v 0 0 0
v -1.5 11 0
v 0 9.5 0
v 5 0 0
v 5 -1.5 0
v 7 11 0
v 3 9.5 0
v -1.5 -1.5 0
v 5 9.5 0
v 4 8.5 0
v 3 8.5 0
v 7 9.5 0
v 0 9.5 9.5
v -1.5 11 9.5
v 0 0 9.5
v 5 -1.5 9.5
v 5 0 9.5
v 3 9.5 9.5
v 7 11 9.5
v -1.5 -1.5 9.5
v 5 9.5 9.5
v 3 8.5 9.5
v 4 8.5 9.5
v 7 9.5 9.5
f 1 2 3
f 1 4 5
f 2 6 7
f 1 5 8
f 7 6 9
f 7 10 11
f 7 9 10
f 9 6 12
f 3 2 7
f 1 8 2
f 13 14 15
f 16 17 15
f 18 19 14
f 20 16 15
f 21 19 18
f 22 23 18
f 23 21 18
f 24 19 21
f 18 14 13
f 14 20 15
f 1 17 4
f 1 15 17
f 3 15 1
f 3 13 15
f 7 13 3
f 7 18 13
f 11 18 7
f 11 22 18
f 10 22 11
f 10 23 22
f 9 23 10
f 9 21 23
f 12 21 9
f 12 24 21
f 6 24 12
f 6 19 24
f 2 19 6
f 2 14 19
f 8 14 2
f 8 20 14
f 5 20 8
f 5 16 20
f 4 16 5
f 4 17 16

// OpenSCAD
clipThickness = 1.5;
clipWidth = 9.5;


clipPadding = 3;
clipEdgeBottom = 1;
clipEdgeSlope = 1;
clipEdgeOver = 2;
clipEdgeThickness = 1;

clipLength = clipPadding+clipEdgeBottom+clipEdgeSlope+clipEdgeOver;
clipTopLength = clipPadding+clipEdgeBottom+clipEdgeSlope;

clipHeight = 9.5;




linear_extrude(height = clipWidth)
  polygon(points = 
    [
      [0,0],[clipTopLength,0],
      [clipTopLength,-clipThickness],[-clipThickness,-clipThickness],
      [-clipThickness,clipThickness+clipHeight],[clipLength, clipThickness+clipHeight],
      [clipLength,clipHeight],
      // the little edge
      [clipLength-clipEdgeOver,clipHeight],
      [clipLength-clipEdgeOver-clipEdgeSlope,clipHeight-clipEdgeThickness],
      [clipLength-clipEdgeOver-clipEdgeSlope-clipEdgeBottom,clipHeight-clipEdgeThickness],
      [clipLength-clipEdgeOver-clipEdgeSlope-clipEdgeBottom,clipHeight],


     [0,clipHeight],

    ]
);
